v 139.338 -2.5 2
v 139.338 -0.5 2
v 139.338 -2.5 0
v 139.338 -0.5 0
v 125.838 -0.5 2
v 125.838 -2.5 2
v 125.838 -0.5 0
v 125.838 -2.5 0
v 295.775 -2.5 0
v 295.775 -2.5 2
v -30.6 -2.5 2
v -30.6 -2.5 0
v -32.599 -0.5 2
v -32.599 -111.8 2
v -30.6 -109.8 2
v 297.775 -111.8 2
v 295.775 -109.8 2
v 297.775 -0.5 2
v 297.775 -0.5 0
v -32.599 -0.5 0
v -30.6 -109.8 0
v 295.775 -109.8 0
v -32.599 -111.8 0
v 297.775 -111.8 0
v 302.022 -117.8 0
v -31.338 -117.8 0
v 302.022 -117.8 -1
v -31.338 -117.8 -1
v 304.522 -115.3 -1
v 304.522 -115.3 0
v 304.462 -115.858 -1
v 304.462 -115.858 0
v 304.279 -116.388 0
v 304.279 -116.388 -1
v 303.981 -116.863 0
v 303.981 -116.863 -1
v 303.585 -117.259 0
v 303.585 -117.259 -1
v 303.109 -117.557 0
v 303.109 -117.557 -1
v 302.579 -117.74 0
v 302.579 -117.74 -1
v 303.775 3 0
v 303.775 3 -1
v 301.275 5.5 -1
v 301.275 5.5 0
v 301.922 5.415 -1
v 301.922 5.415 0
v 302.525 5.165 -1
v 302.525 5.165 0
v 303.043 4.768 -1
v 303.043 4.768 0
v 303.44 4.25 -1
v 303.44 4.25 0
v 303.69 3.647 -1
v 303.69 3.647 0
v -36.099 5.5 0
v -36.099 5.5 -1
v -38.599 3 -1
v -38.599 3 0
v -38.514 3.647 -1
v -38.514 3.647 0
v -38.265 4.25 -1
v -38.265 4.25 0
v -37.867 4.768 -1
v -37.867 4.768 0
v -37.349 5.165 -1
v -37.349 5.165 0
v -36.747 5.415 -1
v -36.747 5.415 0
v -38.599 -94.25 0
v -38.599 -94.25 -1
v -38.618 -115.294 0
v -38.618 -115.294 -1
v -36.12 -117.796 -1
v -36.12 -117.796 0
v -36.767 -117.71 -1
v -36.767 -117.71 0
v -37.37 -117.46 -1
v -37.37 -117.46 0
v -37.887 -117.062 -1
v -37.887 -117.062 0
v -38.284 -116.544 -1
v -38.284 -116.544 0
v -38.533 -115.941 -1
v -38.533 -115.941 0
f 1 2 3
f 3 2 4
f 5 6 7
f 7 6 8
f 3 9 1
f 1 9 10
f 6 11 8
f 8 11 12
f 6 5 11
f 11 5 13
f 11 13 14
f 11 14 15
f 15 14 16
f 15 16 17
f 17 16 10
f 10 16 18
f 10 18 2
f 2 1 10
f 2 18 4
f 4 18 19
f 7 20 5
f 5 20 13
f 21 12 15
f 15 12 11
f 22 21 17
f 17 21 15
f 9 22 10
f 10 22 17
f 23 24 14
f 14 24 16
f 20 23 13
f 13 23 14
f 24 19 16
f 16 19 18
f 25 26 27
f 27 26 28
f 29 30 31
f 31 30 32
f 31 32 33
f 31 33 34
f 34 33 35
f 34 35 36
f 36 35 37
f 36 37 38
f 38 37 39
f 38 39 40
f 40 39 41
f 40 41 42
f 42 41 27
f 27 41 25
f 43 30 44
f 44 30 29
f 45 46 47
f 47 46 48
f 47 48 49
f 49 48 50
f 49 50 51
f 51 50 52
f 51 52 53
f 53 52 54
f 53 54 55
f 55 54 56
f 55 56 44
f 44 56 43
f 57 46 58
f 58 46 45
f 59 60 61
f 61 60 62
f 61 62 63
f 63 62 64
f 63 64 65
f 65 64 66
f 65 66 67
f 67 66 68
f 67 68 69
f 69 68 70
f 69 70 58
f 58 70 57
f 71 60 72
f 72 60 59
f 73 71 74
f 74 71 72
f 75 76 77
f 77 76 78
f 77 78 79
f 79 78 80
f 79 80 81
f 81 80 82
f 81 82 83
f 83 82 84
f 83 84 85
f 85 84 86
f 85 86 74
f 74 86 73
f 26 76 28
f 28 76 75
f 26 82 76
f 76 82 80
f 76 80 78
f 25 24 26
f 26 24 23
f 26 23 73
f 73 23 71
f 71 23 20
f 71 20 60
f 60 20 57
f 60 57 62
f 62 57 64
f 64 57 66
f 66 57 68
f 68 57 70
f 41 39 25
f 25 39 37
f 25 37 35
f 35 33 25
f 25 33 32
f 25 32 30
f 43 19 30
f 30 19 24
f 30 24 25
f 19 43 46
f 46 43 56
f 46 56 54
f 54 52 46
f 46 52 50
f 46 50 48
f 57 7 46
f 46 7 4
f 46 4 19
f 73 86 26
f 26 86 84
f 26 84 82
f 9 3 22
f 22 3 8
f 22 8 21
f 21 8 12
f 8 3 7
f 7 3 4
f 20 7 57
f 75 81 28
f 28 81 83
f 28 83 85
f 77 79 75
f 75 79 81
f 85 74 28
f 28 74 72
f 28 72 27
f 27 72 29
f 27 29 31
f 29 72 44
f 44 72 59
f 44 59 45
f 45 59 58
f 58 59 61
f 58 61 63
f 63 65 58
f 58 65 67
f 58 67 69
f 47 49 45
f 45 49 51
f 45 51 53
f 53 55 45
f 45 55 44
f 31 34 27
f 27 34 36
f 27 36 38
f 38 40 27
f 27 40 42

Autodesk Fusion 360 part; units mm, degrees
sketch "Reference" plane through (0, 0, 0) normal (0, 0, 1) x (1, 0, 0)
  line L0 (298.2751, -95.25) -> (298.2751, -113.3)
  line L1 (298.275, 1) -> (298.275, -57.15)
  line L2 (298.275, -57.15) -> (298.275, -57.15)
  line L3 (304.5217, -115.3) -> (303.775, 3)
  line L4 (179.47, 0) -> (290.235, 0)
  line L5 (290.2351, -112.3) -> (230.642, -112.3)
  line L6 (290.235, 1) -> (298.275, 1)
  line L7 (290.235, 0) -> (298.275, 0)
  line L8 (290.2351, -112.3) -> (298.2751, -112.3)
  arc A0 (302.0217, -117.8) -> (304.5217, -115.3) centre (302.0374, -115.3157) ccw
  line L9 (298.2751, -57.15) -> (298.2751, -74.2)
  line L10 (171.43, 0) -> (171.43, 1)
  line L11 (230.642, -112.3) -> (230.642, -113.3)
  line L12 (222.602, -113.3) -> (222.602, -112.3)
  arc A1 (303.775, 3) -> (301.275, 5.5) centre (301.275, 3) ccw
  line L13 (-28.337, -112.3) -> (-29.3375, -112.3)
  line L14 (-28.3375, 1.5) -> (-28.3375, 3)
  line L15 (-28.337, 1.5) -> (-6.3413, 1.5)
  line L16 (230.642, -112.3) -> (230.642, -113.3)
  line L17 (230.642, -113.3) -> (222.602, -113.3)
  line L18 (-36.12, -117.7958) -> (-31.338, -117.8)
  line L19 (222.602, -113.3) -> (222.602, -112.3)
  line L20 (-28.337, -113.3) -> (-28.337, -112.3)
  line L21 (-29.3375, -113.3) -> (-29.338, -113.3)
  arc A2 (-38.6178, -115.2937) -> (-36.12, -117.7958) centre (-36.1178, -115.2958) ccw
  line L22 (57.336, -112.3) -> (-20.297, -112.3)
  line L23 (8.02, 1) -> (8.02, 0)
  line L24 (-29.3375, -112.3) -> (-29.3375, -113.3)
  line L25 (-33.0995, -112.3) -> (-33.0995, 1.5)
  line L26 (-29.338, -112.3) -> (-33.0995, -112.3)
  line L27 (57.336, -113.3) -> (57.336, -112.3)
  line L28 (-20.297, -113.3) -> (-28.337, -113.3)
  line L29 (-29.338, -113.3) -> (-29.338, -112.3)
  line L30 (-20.297, -112.3) -> (-20.297, -113.3)
  line L31 (301.275, 5.5) -> (-36.0995, 5.5)
  line L32 (-38.5995, -94.25) -> (-38.6178, -115.2937)
  line L33 (298.2751, -76.2) -> (298.2751, -93.25)
  line L34 (298.275, -95.25) -> (298.275, -95.25)
  line L35 (298.275, -76.2) -> (298.275, -76.2)
  line L36 (-6.3413, 1.5) -> (-6.3413, 0)
  line L37 (-38.5995, 3) -> (-38.5995, -94.25)
  arc A3 (303.775, 3) -> (301.275, 5.5) centre (301.275, 3) ccw
  line L38 (298.2751, -74.2) -> (298.275, -74.2)
  line L39 (-28.337, 3) -> (-28.337, 1.5)
  line L40 (-33.0995, 1.5) -> (-28.3375, 1.5)
  line L41 (-0.02, 0) -> (-0.02, 1)
  arc A4 (-36.0995, 5.5) -> (-38.5995, 3) centre (-36.0995, 3) ccw
  line L42 (-31.338, -117.8) -> (302.0217, -117.8)
  line L43 (-6.3413, 0) -> (-0.02, 0)
  line L44 (298.275, -57.15) -> (298.275, -57.15)
  line L45 (-0.02, 1) -> (8.02, 1)
  line L46 (8.02, 0) -> (171.43, 0)
  line L47 (-28.3375, 3) -> (-28.337, 3)
  line L48 (290.235, 0) -> (290.235, 1)
  line L49 (290.235, 1) -> (298.275, 1)
  line L50 (298.2751, -57.15) -> (298.2751, -74.2)
  line L51 (298.275, 1) -> (298.275, -57.15)
  line L52 (222.602, -112.3) -> (65.376, -112.3)
  line L53 (-33.0995, -112.3) -> (-33.0995, 1.5)
  line L54 (301.275, 5.5) -> (-36.0995, 5.5)
  line L55 (-31.338, -117.8) -> (302.0217, -117.8)
  line L56 (57.336, -112.3) -> (-20.297, -112.3)
  line L57 (8.02, 0) -> (171.43, 0)
  line L58 (290.2351, -112.3) -> (230.642, -112.3)
  line L59 (298.2751, -95.25) -> (298.2751, -113.3)
  line L60 (298.275, -76.2) -> (298.275, -76.2)
  line L61 (298.275, -74.2) -> (298.275, -76.2)
  line L62 (298.2751, -76.2) -> (298.2751, -93.25)
  line L63 (298.2751, -93.25) -> (298.275, -93.25)
  line L64 (298.275, -93.25) -> (298.275, -95.25)
  line L65 (290.2351, -113.3) -> (290.2351, -112.3)
  arc A5 (302.0217, -117.8) -> (304.5217, -115.3) centre (302.0374, -115.3157) ccw
  line L66 (179.47, 0) -> (290.235, 0)
  line L67 (298.2751, -113.3) -> (290.2351, -113.3)
  line L68 (304.5217, -115.3) -> (303.775, 3)
  line L69 (298.275, -95.25) -> (298.275, -95.25)
  line L70 (57.336, -113.3) -> (57.336, -112.3)
  line L71 (65.376, -113.3) -> (57.336, -113.3)
  line L72 (-29.338, -113.3) -> (-29.338, -112.3)
  line L73 (-6.3413, 1.5) -> (-6.3413, 0)
  line L74 (-29.3375, -113.3) -> (-29.338, -113.3)
  line L75 (-29.3375, -112.3) -> (-29.3375, -113.3)
  line L76 (-28.3375, 1.5) -> (-28.3375, 3)
  line L77 (-28.337, 1.5) -> (-6.3413, 1.5)
  line L78 (-28.337, -112.3) -> (-29.3375, -112.3)
  line L79 (-28.337, -113.3) -> (-28.337, -112.3)
  line L80 (-28.3375, 3) -> (-28.337, 3)
  line L81 (-20.297, -113.3) -> (-28.337, -113.3)
  line L82 (65.376, -112.3) -> (65.376, -113.3)
  line L83 (-20.297, -112.3) -> (-20.297, -113.3)
  line L84 (-29.338, -112.3) -> (-33.0995, -112.3)
  line L85 (8.02, 1) -> (8.02, 0)
  line L86 (-28.337, 3) -> (-28.337, 1.5)
  arc A6 (-38.6178, -115.2937) -> (-36.12, -117.7958) centre (-36.1178, -115.2958) ccw
  line L87 (-38.5995, -94.25) -> (-38.6178, -115.2937)
  line L88 (-38.5995, 3) -> (-38.5995, -94.25)
  line L89 (-0.02, 0) -> (-0.02, 1)
  line L90 (-33.0995, 1.5) -> (-28.3375, 1.5)
  line L91 (-6.3413, 0) -> (-0.02, 0)
  arc A7 (-36.0995, 5.5) -> (-38.5995, 3) centre (-36.0995, 3) ccw
  line L92 (-0.02, 1) -> (8.02, 1)
  line L93 (-36.12, -117.7958) -> (-31.338, -117.8)
  line L94 (298.275, -93.25) -> (298.275, -95.25)
  line L95 (298.2751, -113.3) -> (290.2351, -113.3)
  line L96 (290.2351, -113.3) -> (290.2351, -112.3)
  line L97 (298.2751, -93.25) -> (298.275, -93.25)
  line L98 (298.275, -74.2) -> (298.275, -76.2)
  line L99 (298.2751, -74.2) -> (298.275, -74.2)
  line L100 (290.235, 0) -> (290.235, 1)
  line L101 (179.47, 1) -> (179.47, 0)
  line L102 (230.642, -113.3) -> (222.602, -113.3)
  line L103 (179.47, 1) -> (179.47, 0)
  line L104 (171.43, 1) -> (179.47, 1)
  line L105 (222.602, -112.3) -> (65.376, -112.3)
  line L106 (65.376, -112.3) -> (65.376, -113.3)
  line L107 (65.376, -113.3) -> (57.336, -113.3)
  line L108 (171.43, 0) -> (171.43, 1)
  line L109 (171.43, 1) -> (179.47, 1)
  dimension "d29" = 5.5
  dimension "d30" = 5.5
  dimension "d31" = 6.2339
  dimension "d32" = 5.5125
  dimension "d33" = 5.5
  dimension "d34" = 6.2276
  dimension "d35" = 5.5188
sketch "FlatPlateSketch" plane through (0, 0, 0) normal (0, 0, 1) x (1, 0, 0)
  line L0 (298.2751, -95.25) -> (298.2751, -113.3)
  line L1 (298.275, 1) -> (298.275, -57.15)
  line L2 (298.275, -57.15) -> (298.275, -57.15)
  line L3 (304.5217, -115.3) -> (303.775, 3)
  line L4 (179.47, 0) -> (290.235, 0)
  line L5 (290.2351, -112.3) -> (230.642, -112.3)
  line L6 (290.235, 1) -> (298.275, 1)
  line L7 (290.235, 0) -> (298.275, 0)
  line L8 (290.2351, -112.3) -> (298.2751, -112.3)
  arc A0 (302.0217, -117.8) -> (304.5217, -115.3) centre (302.0374, -115.3157) ccw
  line L9 (298.2751, -57.15) -> (298.2751, -74.2)
  line L10 (171.43, 0) -> (171.43, 1)
  line L11 (230.642, -112.3) -> (230.642, -113.3)
  line L12 (222.602, -113.3) -> (222.602, -112.3)
  arc A1 (303.775, 3) -> (301.275, 5.5) centre (301.275, 3) ccw
  line L13 (-28.337, -112.3) -> (-29.3375, -112.3)
  line L14 (-28.3375, 1.5) -> (-28.3375, 3)
  line L15 (-28.337, 1.5) -> (-6.3413, 1.5)
  line L16 (230.642, -112.3) -> (230.642, -113.3)
  line L17 (230.642, -113.3) -> (222.602, -113.3)
  line L18 (-36.12, -117.7958) -> (-31.338, -117.8)
  line L19 (222.602, -113.3) -> (222.602, -112.3)
  line L20 (-28.337, -113.3) -> (-28.337, -112.3)
  line L21 (-29.3375, -113.3) -> (-29.338, -113.3)
  arc A2 (-38.6178, -115.2937) -> (-36.12, -117.7958) centre (-36.1178, -115.2958) ccw
  line L22 (57.336, -112.3) -> (-20.297, -112.3)
  line L23 (8.02, 1) -> (8.02, 0)
  line L24 (-29.3375, -112.3) -> (-29.3375, -113.3)
  line L25 (-33.0995, -112.3) -> (-33.0995, 1.5)
  line L26 (-29.338, -112.3) -> (-33.0995, -112.3)
  line L27 (57.336, -113.3) -> (57.336, -112.3)
  line L28 (-20.297, -113.3) -> (-28.337, -113.3)
  line L29 (-29.338, -113.3) -> (-29.338, -112.3)
  line L30 (-20.297, -112.3) -> (-20.297, -113.3)
  line L31 (301.275, 5.5) -> (-36.0995, 5.5)
  line L32 (-38.5995, -94.25) -> (-38.6178, -115.2937)
  line L33 (298.2751, -76.2) -> (298.2751, -93.25)
  line L34 (298.275, -95.25) -> (298.275, -95.25)
  line L35 (298.275, -76.2) -> (298.275, -76.2)
  line L36 (-6.3413, 1.5) -> (-6.3413, 0)
  line L37 (-38.5995, 3) -> (-38.5995, -94.25)
  arc A3 (303.775, 3) -> (301.275, 5.5) centre (301.275, 3) ccw
  line L38 (298.2751, -74.2) -> (298.275, -74.2)
  line L39 (-28.337, 3) -> (-28.337, 1.5)
  line L40 (-33.0995, 1.5) -> (-28.3375, 1.5)
  line L41 (-0.02, 0) -> (-0.02, 1)
  arc A4 (-36.0995, 5.5) -> (-38.5995, 3) centre (-36.0995, 3) ccw
  line L42 (-31.338, -117.8) -> (302.0217, -117.8)
  line L43 (-6.3413, 0) -> (-0.02, 0)
  line L44 (298.275, -57.15) -> (298.275, -57.15)
  line L45 (-0.02, 1) -> (8.02, 1)
  line L46 (8.02, 0) -> (171.43, 0)
  line L47 (-28.3375, 3) -> (-28.337, 3)
  line L48 (290.235, 0) -> (290.235, 1)
  line L49 (290.235, 1) -> (298.275, 1)
  line L50 (298.2751, -57.15) -> (298.2751, -74.2)
  line L51 (298.275, 1) -> (298.275, -57.15)
  line L52 (222.602, -112.3) -> (65.376, -112.3)
  line L53 (-33.0995, -112.3) -> (-33.0995, 1.5)
  line L54 (301.275, 5.5) -> (-36.0995, 5.5)
  line L55 (-31.338, -117.8) -> (302.0217, -117.8)
  line L56 (57.336, -112.3) -> (-20.297, -112.3)
  line L57 (8.02, 0) -> (171.43, 0)
  line L58 (290.2351, -112.3) -> (230.642, -112.3)
  line L59 (298.2751, -95.25) -> (298.2751, -113.3)
  line L60 (298.275, -76.2) -> (298.275, -76.2)
  line L61 (298.275, -74.2) -> (298.275, -76.2)
  line L62 (298.2751, -76.2) -> (298.2751, -93.25)
  line L63 (298.2751, -93.25) -> (298.275, -93.25)
  line L64 (298.275, -93.25) -> (298.275, -95.25)
  line L65 (290.2351, -113.3) -> (290.2351, -112.3)
  arc A5 (302.0217, -117.8) -> (304.5217, -115.3) centre (302.0374, -115.3157) ccw
  line L66 (179.47, 0) -> (290.235, 0)
  line L67 (298.2751, -113.3) -> (290.2351, -113.3)
  line L68 (304.5217, -115.3) -> (303.775, 3)
  line L69 (298.275, -95.25) -> (298.275, -95.25)
  line L70 (57.336, -113.3) -> (57.336, -112.3)
  line L71 (65.376, -113.3) -> (57.336, -113.3)
  line L72 (-29.338, -113.3) -> (-29.338, -112.3)
  line L73 (-6.3413, 1.5) -> (-6.3413, 0)
  line L74 (-29.3375, -113.3) -> (-29.338, -113.3)
  line L75 (-29.3375, -112.3) -> (-29.3375, -113.3)
  line L76 (-28.3375, 1.5) -> (-28.3375, 3)
  line L77 (-28.337, 1.5) -> (-6.3413, 1.5)
  line L78 (-28.337, -112.3) -> (-29.3375, -112.3)
  line L79 (-28.337, -113.3) -> (-28.337, -112.3)
  line L80 (-28.3375, 3) -> (-28.337, 3)
  line L81 (-20.297, -113.3) -> (-28.337, -113.3)
  line L82 (65.376, -112.3) -> (65.376, -113.3)
  line L83 (-20.297, -112.3) -> (-20.297, -113.3)
  line L84 (-29.338, -112.3) -> (-33.0995, -112.3)
  line L85 (8.02, 1) -> (8.02, 0)
  line L86 (-28.337, 3) -> (-28.337, 1.5)
  arc A6 (-38.6178, -115.2937) -> (-36.12, -117.7958) centre (-36.1178, -115.2958) ccw
  line L87 (-38.5995, -94.25) -> (-38.6178, -115.2937)
  line L88 (-38.5995, 3) -> (-38.5995, -94.25)
  line L89 (-0.02, 0) -> (-0.02, 1)
  line L90 (-33.0995, 1.5) -> (-28.3375, 1.5)
  line L91 (-6.3413, 0) -> (-0.02, 0)
  arc A7 (-36.0995, 5.5) -> (-38.5995, 3) centre (-36.0995, 3) ccw
  line L92 (-0.02, 1) -> (8.02, 1)
  line L93 (-36.12, -117.7958) -> (-31.338, -117.8)
  line L94 (298.275, -93.25) -> (298.275, -95.25)
  line L95 (298.2751, -113.3) -> (290.2351, -113.3)
  line L96 (290.2351, -113.3) -> (290.2351, -112.3)
  line L97 (298.2751, -93.25) -> (298.275, -93.25)
  line L98 (298.275, -74.2) -> (298.275, -76.2)
  line L99 (298.2751, -74.2) -> (298.275, -74.2)
  line L100 (290.235, 0) -> (290.235, 1)
  line L101 (179.47, 1) -> (179.47, 0)
  line L102 (230.642, -113.3) -> (222.602, -113.3)
  line L103 (179.47, 1) -> (179.47, 0)
  line L104 (171.43, 1) -> (179.47, 1)
  line L105 (222.602, -112.3) -> (65.376, -112.3)
  line L106 (65.376, -112.3) -> (65.376, -113.3)
  line L107 (65.376, -113.3) -> (57.336, -113.3)
  line L108 (171.43, 0) -> (171.43, 1)
  line L109 (171.43, 1) -> (179.47, 1)
  dimension "d36" = 5.5
  dimension "d37" = 5.5
  dimension "d38" = 6.2339
  dimension "d39" = 5.5125
  dimension "d40" = 5.5
  dimension "d41" = 6.2276
  dimension "d42" = 5.5188
sketch "LipSketch" plane through (0, 0, 0) normal (0, 0, 1) x (1, 0, 0)
  line L0 (298.2751, -95.25) -> (298.2751, -113.3)
  line L1 (298.275, 1) -> (298.275, -57.15)
  line L2 (298.275, -57.15) -> (298.275, -57.15)
  line L3 (304.5217, -115.3) -> (303.775, 3)
  line L4 (179.47, 0) -> (290.235, 0)
  line L5 (290.2351, -112.3) -> (230.642, -112.3)
  line L6 (290.235, 1) -> (298.275, 1)
  line L7 (290.235, 0) -> (298.275, 0)
  line L8 (290.2351, -112.3) -> (298.2751, -112.3)
  arc A0 (302.0217, -117.8) -> (304.5217, -115.3) centre (302.0374, -115.3157) ccw
  line L9 (298.2751, -57.15) -> (298.2751, -74.2)
  line L10 (171.43, 0) -> (171.43, 1)
  line L11 (230.642, -112.3) -> (230.642, -113.3)
  line L12 (222.602, -113.3) -> (222.602, -112.3)
  arc A1 (303.775, 3) -> (301.275, 5.5) centre (301.275, 3) ccw
  line L13 (-28.337, -112.3) -> (-29.3375, -112.3)
  line L14 (-28.3375, 1.5) -> (-28.3375, 3)
  line L15 (-28.337, 1.5) -> (-6.3413, 1.5)
  line L16 (230.642, -112.3) -> (230.642, -113.3)
  line L17 (230.642, -113.3) -> (222.602, -113.3)
  line L18 (-36.12, -117.7958) -> (-31.338, -117.8)
  line L19 (222.602, -113.3) -> (222.602, -112.3)
  line L20 (-28.337, -113.3) -> (-28.337, -112.3)
  line L21 (-29.3375, -113.3) -> (-29.338, -113.3)
  arc A2 (-38.6178, -115.2937) -> (-36.12, -117.7958) centre (-36.1178, -115.2958) ccw
  line L22 (57.336, -112.3) -> (-20.297, -112.3)
  line L23 (8.02, 1) -> (8.02, 0)
  line L24 (-29.3375, -112.3) -> (-29.3375, -113.3)
  line L25 (-33.0995, -112.3) -> (-33.0995, 1.5)
  line L26 (-29.338, -112.3) -> (-33.0995, -112.3)
  line L27 (57.336, -113.3) -> (57.336, -112.3)
  line L28 (-20.297, -113.3) -> (-28.337, -113.3)
  line L29 (-29.338, -113.3) -> (-29.338, -112.3)
  line L30 (-20.297, -112.3) -> (-20.297, -113.3)
  line L31 (301.275, 5.5) -> (-36.0995, 5.5)
  line L32 (-38.5995, -94.25) -> (-38.6178, -115.2937)
  line L33 (298.2751, -76.2) -> (298.2751, -93.25)
  line L34 (298.275, -95.25) -> (298.275, -95.25)
  line L35 (298.275, -76.2) -> (298.275, -76.2)
  line L36 (-6.3413, 1.5) -> (-6.3413, 0)
  line L37 (-38.5995, 3) -> (-38.5995, -94.25)
  arc A3 (303.775, 3) -> (301.275, 5.5) centre (301.275, 3) ccw
  line L38 (298.2751, -74.2) -> (298.275, -74.2)
  line L39 (-28.337, 3) -> (-28.337, 1.5)
  line L40 (-33.0995, 1.5) -> (-28.3375, 1.5)
  line L41 (-0.02, 0) -> (-0.02, 1)
  arc A4 (-36.0995, 5.5) -> (-38.5995, 3) centre (-36.0995, 3) ccw
  line L42 (-31.338, -117.8) -> (302.0217, -117.8)
  line L43 (-6.3413, 0) -> (-0.02, 0)
  line L44 (298.275, -57.15) -> (298.275, -57.15)
  line L45 (-0.02, 1) -> (8.02, 1)
  line L46 (8.02, 0) -> (171.43, 0)
  line L47 (-28.3375, 3) -> (-28.337, 3)
  line L48 (290.235, 0) -> (290.235, 1)
  line L49 (290.235, 1) -> (298.275, 1)
  line L50 (298.2751, -57.15) -> (298.2751, -74.2)
  line L51 (298.275, 1) -> (298.275, -57.15)
  line L52 (222.602, -112.3) -> (65.376, -112.3)
  line L53 (-33.0995, -112.3) -> (-33.0995, 1.5)
  line L54 (301.275, 5.5) -> (-36.0995, 5.5)
  line L55 (-31.338, -117.8) -> (302.0217, -117.8)
  line L56 (57.336, -112.3) -> (-20.297, -112.3)
  line L57 (8.02, 0) -> (171.43, 0)
  line L58 (290.2351, -112.3) -> (230.642, -112.3)
  line L59 (298.2751, -95.25) -> (298.2751, -113.3)
  line L60 (298.275, -76.2) -> (298.275, -76.2)
  line L61 (298.275, -74.2) -> (298.275, -76.2)
  line L62 (298.2751, -76.2) -> (298.2751, -93.25)
  line L63 (298.2751, -93.25) -> (298.275, -93.25)
  line L64 (298.275, -93.25) -> (298.275, -95.25)
  line L65 (290.2351, -113.3) -> (290.2351, -112.3)
  arc A5 (302.0217, -117.8) -> (304.5217, -115.3) centre (302.0374, -115.3157) ccw
  line L66 (179.47, 0) -> (290.235, 0)
  line L67 (298.2751, -113.3) -> (290.2351, -113.3)
  line L68 (304.5217, -115.3) -> (303.775, 3)
  line L69 (298.275, -95.25) -> (298.275, -95.25)
  line L70 (57.336, -113.3) -> (57.336, -112.3)
  line L71 (65.376, -113.3) -> (57.336, -113.3)
  line L72 (-29.338, -113.3) -> (-29.338, -112.3)
  line L73 (-6.3413, 1.5) -> (-6.3413, 0)
  line L74 (-29.3375, -113.3) -> (-29.338, -113.3)
  line L75 (-29.3375, -112.3) -> (-29.3375, -113.3)
  line L76 (-28.3375, 1.5) -> (-28.3375, 3)
  line L77 (-28.337, 1.5) -> (-6.3413, 1.5)
  line L78 (-28.337, -112.3) -> (-29.3375, -112.3)
  line L79 (-28.337, -113.3) -> (-28.337, -112.3)
  line L80 (-28.3375, 3) -> (-28.337, 3)
  line L81 (-20.297, -113.3) -> (-28.337, -113.3)
  line L82 (65.376, -112.3) -> (65.376, -113.3)
  line L83 (-20.297, -112.3) -> (-20.297, -113.3)
  line L84 (-29.338, -112.3) -> (-33.0995, -112.3)
  line L85 (8.02, 1) -> (8.02, 0)
  line L86 (-28.337, 3) -> (-28.337, 1.5)
  arc A6 (-38.6178, -115.2937) -> (-36.12, -117.7958) centre (-36.1178, -115.2958) ccw
  line L87 (-38.5995, -94.25) -> (-38.6178, -115.2937)
  line L88 (-38.5995, 3) -> (-38.5995, -94.25)
  line L89 (-0.02, 0) -> (-0.02, 1)
  line L90 (-33.0995, 1.5) -> (-28.3375, 1.5)
  line L91 (-6.3413, 0) -> (-0.02, 0)
  arc A7 (-36.0995, 5.5) -> (-38.5995, 3) centre (-36.0995, 3) ccw
  line L92 (-0.02, 1) -> (8.02, 1)
  line L93 (-36.12, -117.7958) -> (-31.338, -117.8)
  line L94 (298.275, -93.25) -> (298.275, -95.25)
  line L95 (298.2751, -113.3) -> (290.2351, -113.3)
  line L96 (290.2351, -113.3) -> (290.2351, -112.3)
  line L97 (298.2751, -93.25) -> (298.275, -93.25)
  line L98 (298.275, -74.2) -> (298.275, -76.2)
  line L99 (298.2751, -74.2) -> (298.275, -74.2)
  line L100 (290.235, 0) -> (290.235, 1)
  line L101 (179.47, 1) -> (179.47, 0)
  line L102 (230.642, -113.3) -> (222.602, -113.3)
  line L103 (179.47, 1) -> (179.47, 0)
  line L104 (171.43, 1) -> (179.47, 1)
  line L105 (222.602, -112.3) -> (65.376, -112.3)
  line L106 (65.376, -112.3) -> (65.376, -113.3)
  line L107 (65.376, -113.3) -> (57.336, -113.3)
  line L108 (171.43, 0) -> (171.43, 1)
  line L109 (171.43, 1) -> (179.47, 1)
  line L110 (290.235, 0) -> (290.235, -0.5) construction
  line L111 (298.275, -3.3243) -> (297.775, -3.3243) construction
  line L112 (286.7003, -112.3) -> (286.7003, -111.8) construction
  line L113 (298.2751, -110.893) -> (297.7751, -110.893) construction
  line L114 (286.7003, -111.8) -> (297.7751, -111.8)
  line L115 (297.7751, -110.893) -> (297.7751, -111.8)
  line L116 (297.7751, -110.893) -> (297.7751, -0.5)
  line L117 (290.235, -0.5) -> (297.7751, -0.5)
  line L118 (290.235, -0.5) -> (-27.25, -0.5)
  line L119 (-33.0995, -0.5) -> (-32.5995, -0.5) construction
  line L120 (-32.5995, -0.5) -> (-27.25, -0.5)
  line L121 (-33.0995, -111.8) -> (-32.5995, -111.8) construction
  line L122 (-32.5995, -111.8) -> (-32.5995, -0.5)
  line L123 (286.7003, -111.8) -> (-31.0685, -111.8)
  line L124 (-31.0685, -111.8) -> (-32.5995, -111.8)
  line L125 (-32.5995, -0.5) -> (-30.5995, -0.5)
  line L126 (-30.5995, -0.5) -> (-30.5995, -2.5) construction
  line L127 (-32.5995, -2.5) -> (-32.5995, -0.5)
  line L128 (-32.5995, -111.8) -> (-30.5995, -111.8)
  line L129 (-30.5995, -111.8) -> (-30.5995, -109.8) construction
  line L130 (-30.5995, -109.8) -> (-32.5995, -109.8) construction
  line L131 (-32.5995, -109.8) -> (-32.5995, -111.8)
  line L132 (297.7751, -111.8) -> (295.7751, -111.8)
  line L133 (295.7751, -111.8) -> (295.7751, -109.8) construction
  line L134 (295.7751, -109.8) -> (297.7751, -109.8) construction
  line L135 (297.7751, -109.8) -> (297.7751, -111.8)
  line L136 (297.7751, -0.5) -> (295.7751, -0.5)
  line L137 (295.7751, -0.5) -> (295.7751, -2.5) construction
  line L138 (295.7751, -2.5) -> (297.7751, -2.5) construction
  line L139 (297.7751, -2.5) -> (297.7751, -0.5)
  line L140 (295.7751, -2.5) -> (-30.5995, -2.5)
  line L141 (-30.5995, -2.5) -> (-30.5995, -109.8)
  line L142 (-30.5995, -109.8) -> (295.7751, -109.8)
  line L143 (295.7751, -109.8) -> (295.7751, -2.5)
  dimension "d45" = 5.5
  dimension "d46" = 5.5
  dimension "d47" = 6.2339
  dimension "d48" = 5.5125
  dimension "d49" = 5.5
  dimension "d50" = 6.2276
  dimension "d51" = 5.5188
  dimension "d68" = 0.5
  dimension "d69" = 0.5
  dimension "d70" = 0.5
  dimension "d71" = 0.5
  dimension "d72" = 0.5
  dimension "d73" = 0.5
  dimension "d74" = 2
  dimension "d75" = 2
  dimension "d76" = 2
  dimension "d77" = 2
  dimension "d78" = 2
  dimension "d79" = 2
  dimension "d80" = 2
  dimension "d81" = 2
extrude "Extrude4" add sketch "FlatPlateSketch" against normal blind 1 contours L0 L1 L4 L5 L7 L8 L9 L10 L11 L12 L13 L15 L16 L17 L19 L20 L22 L23 L25 L26 L27 L28 L30 L33 L36 L40 L41 L43 L45 L46 L50 L51 L52 L53 L56 L57 L58 L59 L61 L62 L64 L66 L70 L71 L73 L77 L78 L79 L81 L82 L83 L84 L85 L89 L90 L91 L92 L94 L98 L101 L102 L103 L104 L105 L106 L107 L108 L109 | L0 L8 L59 L65 L67 L95 L96 | L1 L6 L7 L48 L49 L51 L100 | L3 A0 A1 L18 A2 L31 L32 L37 A3 A4 L42 L54 L55 A5 L68 A6 L87 L88 A7 L93
sketch "Sketch8" plane through (0, 0, 0) normal (0, 0, 1) x (1, 0, 0)
  line L0 (298.2751, -95.25) -> (298.2751, -113.3)
  line L1 (298.275, 1) -> (298.275, -57.15)
  line L2 (298.275, -57.15) -> (298.275, -57.15)
  line L3 (304.5217, -115.3) -> (303.775, 3)
  line L4 (179.47, 0) -> (290.235, 0)
  line L5 (290.2351, -112.3) -> (230.642, -112.3)
  line L6 (290.235, 1) -> (298.275, 1)
  line L7 (290.235, 0) -> (298.275, 0)
  line L8 (290.2351, -112.3) -> (298.2751, -112.3)
  arc A0 (302.0217, -117.8) -> (304.5217, -115.3) centre (302.0374, -115.3157) ccw
  line L9 (298.2751, -57.15) -> (298.2751, -74.2)
  line L10 (171.43, 0) -> (171.43, 1)
  line L11 (230.642, -112.3) -> (230.642, -113.3)
  line L12 (222.602, -113.3) -> (222.602, -112.3)
  arc A1 (303.775, 3) -> (301.275, 5.5) centre (301.275, 3) ccw
  line L13 (-28.337, -112.3) -> (-29.3375, -112.3)
  line L14 (-28.3375, 1.5) -> (-28.3375, 3)
  line L15 (-28.337, 1.5) -> (-6.3413, 1.5)
  line L16 (230.642, -112.3) -> (230.642, -113.3)
  line L17 (230.642, -113.3) -> (222.602, -113.3)
  line L18 (-36.12, -117.7958) -> (-31.338, -117.8)
  line L19 (222.602, -113.3) -> (222.602, -112.3)
  line L20 (-28.337, -113.3) -> (-28.337, -112.3)
  line L21 (-29.3375, -113.3) -> (-29.338, -113.3)
  arc A2 (-38.6178, -115.2937) -> (-36.12, -117.7958) centre (-36.1178, -115.2958) ccw
  line L22 (57.336, -112.3) -> (-20.297, -112.3)
  line L23 (8.02, 1) -> (8.02, 0)
  line L24 (-29.3375, -112.3) -> (-29.3375, -113.3)
  line L25 (-33.0995, -112.3) -> (-33.0995, 1.5)
  line L26 (-29.338, -112.3) -> (-33.0995, -112.3)
  line L27 (57.336, -113.3) -> (57.336, -112.3)
  line L28 (-20.297, -113.3) -> (-28.337, -113.3)
  line L29 (-29.338, -113.3) -> (-29.338, -112.3)
  line L30 (-20.297, -112.3) -> (-20.297, -113.3)
  line L31 (301.275, 5.5) -> (-36.0995, 5.5)
  line L32 (-38.5995, -94.25) -> (-38.6178, -115.2937)
  line L33 (298.2751, -76.2) -> (298.2751, -93.25)
  line L34 (298.275, -95.25) -> (298.275, -95.25)
  line L35 (298.275, -76.2) -> (298.275, -76.2)
  line L36 (-6.3413, 1.5) -> (-6.3413, 0)
  line L37 (-38.5995, 3) -> (-38.5995, -94.25)
  arc A3 (303.775, 3) -> (301.275, 5.5) centre (301.275, 3) ccw
  line L38 (298.2751, -74.2) -> (298.275, -74.2)
  line L39 (-28.337, 3) -> (-28.337, 1.5)
  line L40 (-33.0995, 1.5) -> (-28.3375, 1.5)
  line L41 (-0.02, 0) -> (-0.02, 1)
  arc A4 (-36.0995, 5.5) -> (-38.5995, 3) centre (-36.0995, 3) ccw
  line L42 (-31.338, -117.8) -> (302.0217, -117.8)
  line L43 (-6.3413, 0) -> (-0.02, 0)
  line L44 (298.275, -57.15) -> (298.275, -57.15)
  line L45 (-0.02, 1) -> (8.02, 1)
  line L46 (8.02, 0) -> (171.43, 0)
  line L47 (-28.3375, 3) -> (-28.337, 3)
  line L48 (290.235, 0) -> (290.235, 1)
  line L49 (290.235, 1) -> (298.275, 1)
  line L50 (298.2751, -57.15) -> (298.2751, -74.2)
  line L51 (298.275, 1) -> (298.275, -57.15)
  line L52 (222.602, -112.3) -> (65.376, -112.3)
  line L53 (-33.0995, -112.3) -> (-33.0995, 1.5)
  line L54 (301.275, 5.5) -> (-36.0995, 5.5)
  line L55 (-31.338, -117.8) -> (302.0217, -117.8)
  line L56 (57.336, -112.3) -> (-20.297, -112.3)
  line L57 (8.02, 0) -> (171.43, 0)
  line L58 (290.2351, -112.3) -> (230.642, -112.3)
  line L59 (298.2751, -95.25) -> (298.2751, -113.3)
  line L60 (298.275, -76.2) -> (298.275, -76.2)
  line L61 (298.275, -74.2) -> (298.275, -76.2)
  line L62 (298.2751, -76.2) -> (298.2751, -93.25)
  line L63 (298.2751, -93.25) -> (298.275, -93.25)
  line L64 (298.275, -93.25) -> (298.275, -95.25)
  line L65 (290.2351, -113.3) -> (290.2351, -112.3)
  arc A5 (302.0217, -117.8) -> (304.5217, -115.3) centre (302.0374, -115.3157) ccw
  line L66 (179.47, 0) -> (290.235, 0)
  line L67 (298.2751, -113.3) -> (290.2351, -113.3)
  line L68 (304.5217, -115.3) -> (303.775, 3)
  line L69 (298.275, -95.25) -> (298.275, -95.25)
  line L70 (57.336, -113.3) -> (57.336, -112.3)
  line L71 (65.376, -113.3) -> (57.336, -113.3)
  line L72 (-29.338, -113.3) -> (-29.338, -112.3)
  line L73 (-6.3413, 1.5) -> (-6.3413, 0)
  line L74 (-29.3375, -113.3) -> (-29.338, -113.3)
  line L75 (-29.3375, -112.3) -> (-29.3375, -113.3)
  line L76 (-28.3375, 1.5) -> (-28.3375, 3)
  line L77 (-28.337, 1.5) -> (-6.3413, 1.5)
  line L78 (-28.337, -112.3) -> (-29.3375, -112.3)
  line L79 (-28.337, -113.3) -> (-28.337, -112.3)
  line L80 (-28.3375, 3) -> (-28.337, 3)
  line L81 (-20.297, -113.3) -> (-28.337, -113.3)
  line L82 (65.376, -112.3) -> (65.376, -113.3)
  line L83 (-20.297, -112.3) -> (-20.297, -113.3)
  line L84 (-29.338, -112.3) -> (-33.0995, -112.3)
  line L85 (8.02, 1) -> (8.02, 0)
  line L86 (-28.337, 3) -> (-28.337, 1.5)
  arc A6 (-38.6178, -115.2937) -> (-36.12, -117.7958) centre (-36.1178, -115.2958) ccw
  line L87 (-38.5995, -94.25) -> (-38.6178, -115.2937)
  line L88 (-38.5995, 3) -> (-38.5995, -94.25)
  line L89 (-0.02, 0) -> (-0.02, 1)
  line L90 (-33.0995, 1.5) -> (-28.3375, 1.5)
  line L91 (-6.3413, 0) -> (-0.02, 0)
  arc A7 (-36.0995, 5.5) -> (-38.5995, 3) centre (-36.0995, 3) ccw
  line L92 (-0.02, 1) -> (8.02, 1)
  line L93 (-36.12, -117.7958) -> (-31.338, -117.8)
  line L94 (298.275, -93.25) -> (298.275, -95.25)
  line L95 (298.2751, -113.3) -> (290.2351, -113.3)
  line L96 (290.2351, -113.3) -> (290.2351, -112.3)
  line L97 (298.2751, -93.25) -> (298.275, -93.25)
  line L98 (298.275, -74.2) -> (298.275, -76.2)
  line L99 (298.2751, -74.2) -> (298.275, -74.2)
  line L100 (290.235, 0) -> (290.235, 1)
  line L101 (179.47, 1) -> (179.47, 0)
  line L102 (230.642, -113.3) -> (222.602, -113.3)
  line L103 (179.47, 1) -> (179.47, 0)
  line L104 (171.43, 1) -> (179.47, 1)
  line L105 (222.602, -112.3) -> (65.376, -112.3)
  line L106 (65.376, -112.3) -> (65.376, -113.3)
  line L107 (65.376, -113.3) -> (57.336, -113.3)
  line L108 (171.43, 0) -> (171.43, 1)
  line L109 (171.43, 1) -> (179.47, 1)
  dimension "d54" = 5.5
  dimension "d55" = 5.5
  dimension "d56" = 6.2339
  dimension "d57" = 5.5125
  dimension "d58" = 5.5
  dimension "d59" = 6.2276
  dimension "d60" = 5.5188
extrude "LipExtrude" add sketch "LipSketch" along normal blind 2 contours L114 L115 L116 L117 L118 L120 L122 L123 L124 L125 L127 L128 L131 L132 L135 L136 L139
sketch "USBHoleSketch" plane through (0, 0, 2) normal (0, 0, 1) x (-1, 0, 0)
  line L0 (-295.7751, 2.5) -> (-295.7751, 109.8)
  line L1 (-295.7751, 109.8) -> (30.5995, 109.8)
  line L2 (30.5995, 109.8) -> (30.5995, 2.5)
  line L3 (30.5995, 2.5) -> (-295.7751, 2.5)
  line L4 (-297.7751, 111.8) -> (-297.7751, 0.5)
  line L5 (-297.7751, 0.5) -> (32.5995, 0.5)
  line L6 (32.5995, 0.5) -> (32.5995, 111.8)
  line L7 (32.5995, 111.8) -> (-297.7751, 111.8)
  line L8 (32.5995, 0.5) -> (-132.588, 0.5) construction
  line L9 (-132.588, 0.5) -> (-139.338, 0.5)
  line L10 (-139.338, 0.5) -> (-139.338, 2.5)
  line L11 (-139.338, 2.5) -> (-125.838, 2.5)
  line L12 (-125.838, 2.5) -> (-125.838, 0.5)
  line L13 (-125.838, 0.5) -> (-132.588, 0.5)
  dimension "d84" = 165.1875
  dimension "d85" = 6.75
  dimension "d86" = 13.5
extrude "Extrude6" cut sketch "USBHoleSketch" against normal blind 2 contours L3 L5 L9 L10 L11 L12 L13
sketch "Sketch9" plane through (0, 0, 0) normal (0, 0, 1) x (1, 0, 0)
  line L0 (298.2751, -95.25) -> (298.2751, -113.3)
  line L1 (298.275, 1) -> (298.275, -57.15)
  line L2 (298.275, -57.15) -> (298.275, -57.15)
  line L3 (304.5217, -115.3) -> (303.775, 3)
  line L4 (179.47, 0) -> (290.235, 0)
  line L5 (290.2351, -112.3) -> (230.642, -112.3)
  line L6 (290.235, 1) -> (298.275, 1)
  line L7 (290.235, 0) -> (298.275, 0)
  line L8 (290.2351, -112.3) -> (298.2751, -112.3)
  arc A0 (302.0217, -117.8) -> (304.5217, -115.3) centre (302.0374, -115.3157) ccw
  line L9 (298.2751, -57.15) -> (298.2751, -74.2)
  line L10 (171.43, 0) -> (171.43, 1)
  line L11 (230.642, -112.3) -> (230.642, -113.3)
  line L12 (222.602, -113.3) -> (222.602, -112.3)
  arc A1 (303.775, 3) -> (301.275, 5.5) centre (301.275, 3) ccw
  line L13 (-28.337, -112.3) -> (-29.3375, -112.3)
  line L14 (-28.3375, 1.5) -> (-28.3375, 3)
  line L15 (-28.337, 1.5) -> (-6.3413, 1.5)
  line L16 (230.642, -112.3) -> (230.642, -113.3)
  line L17 (230.642, -113.3) -> (222.602, -113.3)
  line L18 (-36.12, -117.7958) -> (-31.338, -117.8)
  line L19 (222.602, -113.3) -> (222.602, -112.3)
  line L20 (-28.337, -113.3) -> (-28.337, -112.3)
  line L21 (-29.3375, -113.3) -> (-29.338, -113.3)
  arc A2 (-38.6178, -115.2937) -> (-36.12, -117.7958) centre (-36.1178, -115.2958) ccw
  line L22 (57.336, -112.3) -> (-20.297, -112.3)
  line L23 (8.02, 1) -> (8.02, 0)
  line L24 (-29.3375, -112.3) -> (-29.3375, -113.3)
  line L25 (-33.0995, -112.3) -> (-33.0995, 1.5)
  line L26 (-29.338, -112.3) -> (-33.0995, -112.3)
  line L27 (57.336, -113.3) -> (57.336, -112.3)
  line L28 (-20.297, -113.3) -> (-28.337, -113.3)
  line L29 (-29.338, -113.3) -> (-29.338, -112.3)
  line L30 (-20.297, -112.3) -> (-20.297, -113.3)
  line L31 (301.275, 5.5) -> (-36.0995, 5.5)
  line L32 (-38.5995, -94.25) -> (-38.6178, -115.2937)
  line L33 (298.2751, -76.2) -> (298.2751, -93.25)
  line L34 (298.275, -95.25) -> (298.275, -95.25)
  line L35 (298.275, -76.2) -> (298.275, -76.2)
  line L36 (-6.3413, 1.5) -> (-6.3413, 0)
  line L37 (-38.5995, 3) -> (-38.5995, -94.25)
  arc A3 (303.775, 3) -> (301.275, 5.5) centre (301.275, 3) ccw
  line L38 (298.2751, -74.2) -> (298.275, -74.2)
  line L39 (-28.337, 3) -> (-28.337, 1.5)
  line L40 (-33.0995, 1.5) -> (-28.3375, 1.5)
  line L41 (-0.02, 0) -> (-0.02, 1)
  arc A4 (-36.0995, 5.5) -> (-38.5995, 3) centre (-36.0995, 3) ccw
  line L42 (-31.338, -117.8) -> (302.0217, -117.8)
  line L43 (-6.3413, 0) -> (-0.02, 0)
  line L44 (298.275, -57.15) -> (298.275, -57.15)
  line L45 (-0.02, 1) -> (8.02, 1)
  line L46 (8.02, 0) -> (171.43, 0)
  line L47 (-28.3375, 3) -> (-28.337, 3)
  line L48 (290.235, 0) -> (290.235, 1)
  line L49 (290.235, 1) -> (298.275, 1)
  line L50 (298.2751, -57.15) -> (298.2751, -74.2)
  line L51 (298.275, 1) -> (298.275, -57.15)
  line L52 (222.602, -112.3) -> (65.376, -112.3)
  line L53 (-33.0995, -112.3) -> (-33.0995, 1.5)
  line L54 (301.275, 5.5) -> (-36.0995, 5.5)
  line L55 (-31.338, -117.8) -> (302.0217, -117.8)
  line L56 (57.336, -112.3) -> (-20.297, -112.3)
  line L57 (8.02, 0) -> (171.43, 0)
  line L58 (290.2351, -112.3) -> (230.642, -112.3)
  line L59 (298.2751, -95.25) -> (298.2751, -113.3)
  line L60 (298.275, -76.2) -> (298.275, -76.2)
  line L61 (298.275, -74.2) -> (298.275, -76.2)
  line L62 (298.2751, -76.2) -> (298.2751, -93.25)
  line L63 (298.2751, -93.25) -> (298.275, -93.25)
  line L64 (298.275, -93.25) -> (298.275, -95.25)
  line L65 (290.2351, -113.3) -> (290.2351, -112.3)
  arc A5 (302.0217, -117.8) -> (304.5217, -115.3) centre (302.0374, -115.3157) ccw
  line L66 (179.47, 0) -> (290.235, 0)
  line L67 (298.2751, -113.3) -> (290.2351, -113.3)
  line L68 (304.5217, -115.3) -> (303.775, 3)
  line L69 (298.275, -95.25) -> (298.275, -95.25)
  line L70 (57.336, -113.3) -> (57.336, -112.3)
  line L71 (65.376, -113.3) -> (57.336, -113.3)
  line L72 (-29.338, -113.3) -> (-29.338, -112.3)
  line L73 (-6.3413, 1.5) -> (-6.3413, 0)
  line L74 (-29.3375, -113.3) -> (-29.338, -113.3)
  line L75 (-29.3375, -112.3) -> (-29.3375, -113.3)
  line L76 (-28.3375, 1.5) -> (-28.3375, 3)
  line L77 (-28.337, 1.5) -> (-6.3413, 1.5)
  line L78 (-28.337, -112.3) -> (-29.3375, -112.3)
  line L79 (-28.337, -113.3) -> (-28.337, -112.3)
  line L80 (-28.3375, 3) -> (-28.337, 3)
  line L81 (-20.297, -113.3) -> (-28.337, -113.3)
  line L82 (65.376, -112.3) -> (65.376, -113.3)
  line L83 (-20.297, -112.3) -> (-20.297, -113.3)
  line L84 (-29.338, -112.3) -> (-33.0995, -112.3)
  line L85 (8.02, 1) -> (8.02, 0)
  line L86 (-28.337, 3) -> (-28.337, 1.5)
  arc A6 (-38.6178, -115.2937) -> (-36.12, -117.7958) centre (-36.1178, -115.2958) ccw
  line L87 (-38.5995, -94.25) -> (-38.6178, -115.2937)
  line L88 (-38.5995, 3) -> (-38.5995, -94.25)
  line L89 (-0.02, 0) -> (-0.02, 1)
  line L90 (-33.0995, 1.5) -> (-28.3375, 1.5)
  line L91 (-6.3413, 0) -> (-0.02, 0)
  arc A7 (-36.0995, 5.5) -> (-38.5995, 3) centre (-36.0995, 3) ccw
  line L92 (-0.02, 1) -> (8.02, 1)
  line L93 (-36.12, -117.7958) -> (-31.338, -117.8)
  line L94 (298.275, -93.25) -> (298.275, -95.25)
  line L95 (298.2751, -113.3) -> (290.2351, -113.3)
  line L96 (290.2351, -113.3) -> (290.2351, -112.3)
  line L97 (298.2751, -93.25) -> (298.275, -93.25)
  line L98 (298.275, -74.2) -> (298.275, -76.2)
  line L99 (298.2751, -74.2) -> (298.275, -74.2)
  line L100 (290.235, 0) -> (290.235, 1)
  line L101 (179.47, 1) -> (179.47, 0)
  line L102 (230.642, -113.3) -> (222.602, -113.3)
  line L103 (179.47, 1) -> (179.47, 0)
  line L104 (171.43, 1) -> (179.47, 1)
  line L105 (222.602, -112.3) -> (65.376, -112.3)
  line L106 (65.376, -112.3) -> (65.376, -113.3)
  line L107 (65.376, -113.3) -> (57.336, -113.3)
  line L108 (171.43, 0) -> (171.43, 1)
  line L109 (171.43, 1) -> (179.47, 1)
  line L110 (125.838, -2.5) -> (125.838, -0.5)
  line L111 (125.838, -0.5) -> (-32.5995, -0.5)
  line L112 (-32.5995, -0.5) -> (-32.5995, -111.8)
  line L113 (-32.5995, -111.8) -> (297.7751, -111.8)
  line L114 (297.775, -111.8) -> (297.7751, -0.5)
  line L115 (297.7751, -0.5) -> (139.338, -0.5)
  line L116 (139.338, -0.5) -> (139.338, -2.5)
  line L117 (139.338, -2.5) -> (295.7751, -2.5)
  line L118 (295.7751, -2.5) -> (295.7751, -109.8)
  line L119 (295.7751, -109.8) -> (-30.5995, -109.8)
  line L120 (-30.5995, -109.8) -> (-30.5995, -2.5)
  line L121 (-30.5995, -2.5) -> (125.838, -2.5)
  line L122 (-27.837, -112.3) -> (-27.837, -112.8)
  line L123 (-27.837, -112.8) -> (-20.797, -112.8)
  line L124 (-20.797, -112.3) -> (-20.797, -112.8)
  line L125 (-20.797, -112.3) -> (-20.797, -111.8)
  line L126 (-27.837, -112.3) -> (-27.837, -111.8)
  dimension "d61" = 5.5
  dimension "d62" = 5.5
  dimension "d63" = 6.2339
  dimension "d64" = 5.5125
  dimension "d65" = 5.5
  dimension "d66" = 6.2276
  dimension "d67" = 5.5188
  dimension "d89" = 0.5
  dimension "d90" = 0.5
equation "d84 = ( 330.375 / 2 ) * 1 mm"
equation "d85 = ( 13.5 / 2 ) * 1 mm"
